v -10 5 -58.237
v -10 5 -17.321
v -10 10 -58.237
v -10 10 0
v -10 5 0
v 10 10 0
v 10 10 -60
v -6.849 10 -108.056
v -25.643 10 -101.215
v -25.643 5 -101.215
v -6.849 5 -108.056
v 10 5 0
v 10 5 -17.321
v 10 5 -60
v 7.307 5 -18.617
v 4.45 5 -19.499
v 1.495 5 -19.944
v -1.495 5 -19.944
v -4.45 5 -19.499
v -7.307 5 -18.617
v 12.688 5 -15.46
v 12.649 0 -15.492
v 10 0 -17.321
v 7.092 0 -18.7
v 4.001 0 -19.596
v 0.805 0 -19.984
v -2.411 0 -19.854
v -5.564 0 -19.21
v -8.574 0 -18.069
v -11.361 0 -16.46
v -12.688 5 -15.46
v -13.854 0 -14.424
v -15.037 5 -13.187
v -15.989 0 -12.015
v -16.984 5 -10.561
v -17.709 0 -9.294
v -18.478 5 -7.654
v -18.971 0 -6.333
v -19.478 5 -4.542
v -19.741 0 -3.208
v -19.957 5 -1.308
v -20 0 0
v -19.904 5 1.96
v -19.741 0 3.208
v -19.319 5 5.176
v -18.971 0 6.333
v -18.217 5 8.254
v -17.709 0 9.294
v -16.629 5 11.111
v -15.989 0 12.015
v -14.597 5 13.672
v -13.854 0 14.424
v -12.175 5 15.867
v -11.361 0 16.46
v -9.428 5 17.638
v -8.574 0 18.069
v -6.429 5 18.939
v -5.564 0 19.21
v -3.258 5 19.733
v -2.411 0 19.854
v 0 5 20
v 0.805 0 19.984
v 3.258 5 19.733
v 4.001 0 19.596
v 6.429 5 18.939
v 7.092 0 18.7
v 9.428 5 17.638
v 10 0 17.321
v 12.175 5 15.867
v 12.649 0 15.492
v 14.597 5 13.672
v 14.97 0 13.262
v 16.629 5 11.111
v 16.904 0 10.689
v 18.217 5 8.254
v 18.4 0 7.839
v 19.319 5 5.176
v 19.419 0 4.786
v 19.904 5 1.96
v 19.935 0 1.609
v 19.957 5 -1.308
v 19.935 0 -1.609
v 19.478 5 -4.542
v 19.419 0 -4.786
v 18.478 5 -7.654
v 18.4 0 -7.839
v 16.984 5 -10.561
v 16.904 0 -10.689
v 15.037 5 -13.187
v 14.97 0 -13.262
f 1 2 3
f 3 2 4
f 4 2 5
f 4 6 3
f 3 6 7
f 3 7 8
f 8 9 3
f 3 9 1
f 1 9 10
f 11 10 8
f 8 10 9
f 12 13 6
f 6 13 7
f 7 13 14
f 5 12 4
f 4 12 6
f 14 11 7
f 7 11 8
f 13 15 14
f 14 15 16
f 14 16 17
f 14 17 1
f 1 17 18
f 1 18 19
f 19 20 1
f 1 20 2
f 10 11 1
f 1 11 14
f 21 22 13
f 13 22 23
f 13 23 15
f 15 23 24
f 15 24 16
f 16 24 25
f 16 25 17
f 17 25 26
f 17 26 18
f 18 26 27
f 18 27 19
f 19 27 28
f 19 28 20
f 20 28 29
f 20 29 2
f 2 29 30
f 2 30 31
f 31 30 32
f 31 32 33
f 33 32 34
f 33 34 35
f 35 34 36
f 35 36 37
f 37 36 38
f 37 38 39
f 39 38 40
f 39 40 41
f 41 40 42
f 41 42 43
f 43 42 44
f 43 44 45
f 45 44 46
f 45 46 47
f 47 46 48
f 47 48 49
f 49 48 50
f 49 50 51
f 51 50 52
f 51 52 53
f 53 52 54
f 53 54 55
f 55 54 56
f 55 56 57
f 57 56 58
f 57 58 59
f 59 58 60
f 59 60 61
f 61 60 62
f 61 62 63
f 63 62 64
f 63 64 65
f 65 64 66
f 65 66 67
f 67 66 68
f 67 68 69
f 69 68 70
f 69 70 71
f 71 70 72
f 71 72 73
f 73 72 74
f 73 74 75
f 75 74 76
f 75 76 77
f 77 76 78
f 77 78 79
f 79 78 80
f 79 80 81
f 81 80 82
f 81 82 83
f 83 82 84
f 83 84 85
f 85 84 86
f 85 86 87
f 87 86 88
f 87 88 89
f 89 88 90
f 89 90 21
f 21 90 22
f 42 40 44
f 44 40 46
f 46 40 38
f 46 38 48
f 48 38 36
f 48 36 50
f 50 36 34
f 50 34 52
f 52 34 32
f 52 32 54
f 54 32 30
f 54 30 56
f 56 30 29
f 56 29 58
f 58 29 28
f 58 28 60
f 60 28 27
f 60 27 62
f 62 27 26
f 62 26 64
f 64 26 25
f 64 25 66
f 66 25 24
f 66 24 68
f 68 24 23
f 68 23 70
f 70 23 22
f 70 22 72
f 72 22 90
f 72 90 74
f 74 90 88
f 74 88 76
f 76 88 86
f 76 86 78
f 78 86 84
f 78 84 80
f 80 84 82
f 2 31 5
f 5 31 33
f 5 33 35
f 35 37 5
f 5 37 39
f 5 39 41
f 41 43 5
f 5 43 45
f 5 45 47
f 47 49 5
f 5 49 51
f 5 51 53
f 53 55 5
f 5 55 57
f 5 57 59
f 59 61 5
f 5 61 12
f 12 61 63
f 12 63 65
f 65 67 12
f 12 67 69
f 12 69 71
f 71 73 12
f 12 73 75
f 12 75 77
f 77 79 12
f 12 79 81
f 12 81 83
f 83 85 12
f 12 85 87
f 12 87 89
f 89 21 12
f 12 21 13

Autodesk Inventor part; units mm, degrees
ref_plane "YZ Plane" through (0, 0, 0) normal (1, 0, 0) x (0, 1, 0)
ref_plane "XZ Plane" through (0, 0, 0) normal (0, 1, 0) x (-1, 0, 0)
ref_plane "XY Plane" through (0, 0, 0) normal (0, 0, 1) x (1, 0, 0)
sketch "Sketch1" plane through (0, 0, 0) normal (0, 1, 0) x (-1, 0, 0)
  circle A0 centre (0, 0) radius 20
  dimension "d0" = 40
extrude "Extrusion1" add sketch "Sketch1" along normal blind 5
sketch "Sketch2" plane through (0, 5, 0) normal (0, 1, 0) x (1, 0, 0)
  line L0 (0, 0) -> (-10, 0)
  line L1 (-10, 0) -> (-10, 60)
  line L2 (-10, 60) -> (0, 60)
  line L3 (0, 60) -> (0, 0)
  line L4 (0, 0) -> (10, 0)
  line L5 (10, 0) -> (10, 60)
  line L6 (10, 60) -> (0, 60)
  line L7 (0, 60) -> (0, 0)
  line L8 (0, 60) -> (-16.246, 104.6354)
  line L9 (0, 60) -> (-9.3969, 56.5798)
  line L10 (-9.3969, 56.5798) -> (-25.6429, 101.2152)
  line L11 (-25.6429, 101.2152) -> (-16.246, 104.6354)
  line L12 (-16.246, 104.6354) -> (-6.849, 108.0556)
  line L13 (-6.849, 108.0556) -> (10, 60)
  dimension "d3" = 10
  dimension "d4" = 60
  dimension "d5" = 10
  dimension "d7" = 47.5
  dimension "d8" = 160
  dimension "d9" = 10
  dimension "d10" = 10
extrude "Extrusion2" add sketch "Sketch2" along normal blind 5
properties part number "scale_r_arm"
